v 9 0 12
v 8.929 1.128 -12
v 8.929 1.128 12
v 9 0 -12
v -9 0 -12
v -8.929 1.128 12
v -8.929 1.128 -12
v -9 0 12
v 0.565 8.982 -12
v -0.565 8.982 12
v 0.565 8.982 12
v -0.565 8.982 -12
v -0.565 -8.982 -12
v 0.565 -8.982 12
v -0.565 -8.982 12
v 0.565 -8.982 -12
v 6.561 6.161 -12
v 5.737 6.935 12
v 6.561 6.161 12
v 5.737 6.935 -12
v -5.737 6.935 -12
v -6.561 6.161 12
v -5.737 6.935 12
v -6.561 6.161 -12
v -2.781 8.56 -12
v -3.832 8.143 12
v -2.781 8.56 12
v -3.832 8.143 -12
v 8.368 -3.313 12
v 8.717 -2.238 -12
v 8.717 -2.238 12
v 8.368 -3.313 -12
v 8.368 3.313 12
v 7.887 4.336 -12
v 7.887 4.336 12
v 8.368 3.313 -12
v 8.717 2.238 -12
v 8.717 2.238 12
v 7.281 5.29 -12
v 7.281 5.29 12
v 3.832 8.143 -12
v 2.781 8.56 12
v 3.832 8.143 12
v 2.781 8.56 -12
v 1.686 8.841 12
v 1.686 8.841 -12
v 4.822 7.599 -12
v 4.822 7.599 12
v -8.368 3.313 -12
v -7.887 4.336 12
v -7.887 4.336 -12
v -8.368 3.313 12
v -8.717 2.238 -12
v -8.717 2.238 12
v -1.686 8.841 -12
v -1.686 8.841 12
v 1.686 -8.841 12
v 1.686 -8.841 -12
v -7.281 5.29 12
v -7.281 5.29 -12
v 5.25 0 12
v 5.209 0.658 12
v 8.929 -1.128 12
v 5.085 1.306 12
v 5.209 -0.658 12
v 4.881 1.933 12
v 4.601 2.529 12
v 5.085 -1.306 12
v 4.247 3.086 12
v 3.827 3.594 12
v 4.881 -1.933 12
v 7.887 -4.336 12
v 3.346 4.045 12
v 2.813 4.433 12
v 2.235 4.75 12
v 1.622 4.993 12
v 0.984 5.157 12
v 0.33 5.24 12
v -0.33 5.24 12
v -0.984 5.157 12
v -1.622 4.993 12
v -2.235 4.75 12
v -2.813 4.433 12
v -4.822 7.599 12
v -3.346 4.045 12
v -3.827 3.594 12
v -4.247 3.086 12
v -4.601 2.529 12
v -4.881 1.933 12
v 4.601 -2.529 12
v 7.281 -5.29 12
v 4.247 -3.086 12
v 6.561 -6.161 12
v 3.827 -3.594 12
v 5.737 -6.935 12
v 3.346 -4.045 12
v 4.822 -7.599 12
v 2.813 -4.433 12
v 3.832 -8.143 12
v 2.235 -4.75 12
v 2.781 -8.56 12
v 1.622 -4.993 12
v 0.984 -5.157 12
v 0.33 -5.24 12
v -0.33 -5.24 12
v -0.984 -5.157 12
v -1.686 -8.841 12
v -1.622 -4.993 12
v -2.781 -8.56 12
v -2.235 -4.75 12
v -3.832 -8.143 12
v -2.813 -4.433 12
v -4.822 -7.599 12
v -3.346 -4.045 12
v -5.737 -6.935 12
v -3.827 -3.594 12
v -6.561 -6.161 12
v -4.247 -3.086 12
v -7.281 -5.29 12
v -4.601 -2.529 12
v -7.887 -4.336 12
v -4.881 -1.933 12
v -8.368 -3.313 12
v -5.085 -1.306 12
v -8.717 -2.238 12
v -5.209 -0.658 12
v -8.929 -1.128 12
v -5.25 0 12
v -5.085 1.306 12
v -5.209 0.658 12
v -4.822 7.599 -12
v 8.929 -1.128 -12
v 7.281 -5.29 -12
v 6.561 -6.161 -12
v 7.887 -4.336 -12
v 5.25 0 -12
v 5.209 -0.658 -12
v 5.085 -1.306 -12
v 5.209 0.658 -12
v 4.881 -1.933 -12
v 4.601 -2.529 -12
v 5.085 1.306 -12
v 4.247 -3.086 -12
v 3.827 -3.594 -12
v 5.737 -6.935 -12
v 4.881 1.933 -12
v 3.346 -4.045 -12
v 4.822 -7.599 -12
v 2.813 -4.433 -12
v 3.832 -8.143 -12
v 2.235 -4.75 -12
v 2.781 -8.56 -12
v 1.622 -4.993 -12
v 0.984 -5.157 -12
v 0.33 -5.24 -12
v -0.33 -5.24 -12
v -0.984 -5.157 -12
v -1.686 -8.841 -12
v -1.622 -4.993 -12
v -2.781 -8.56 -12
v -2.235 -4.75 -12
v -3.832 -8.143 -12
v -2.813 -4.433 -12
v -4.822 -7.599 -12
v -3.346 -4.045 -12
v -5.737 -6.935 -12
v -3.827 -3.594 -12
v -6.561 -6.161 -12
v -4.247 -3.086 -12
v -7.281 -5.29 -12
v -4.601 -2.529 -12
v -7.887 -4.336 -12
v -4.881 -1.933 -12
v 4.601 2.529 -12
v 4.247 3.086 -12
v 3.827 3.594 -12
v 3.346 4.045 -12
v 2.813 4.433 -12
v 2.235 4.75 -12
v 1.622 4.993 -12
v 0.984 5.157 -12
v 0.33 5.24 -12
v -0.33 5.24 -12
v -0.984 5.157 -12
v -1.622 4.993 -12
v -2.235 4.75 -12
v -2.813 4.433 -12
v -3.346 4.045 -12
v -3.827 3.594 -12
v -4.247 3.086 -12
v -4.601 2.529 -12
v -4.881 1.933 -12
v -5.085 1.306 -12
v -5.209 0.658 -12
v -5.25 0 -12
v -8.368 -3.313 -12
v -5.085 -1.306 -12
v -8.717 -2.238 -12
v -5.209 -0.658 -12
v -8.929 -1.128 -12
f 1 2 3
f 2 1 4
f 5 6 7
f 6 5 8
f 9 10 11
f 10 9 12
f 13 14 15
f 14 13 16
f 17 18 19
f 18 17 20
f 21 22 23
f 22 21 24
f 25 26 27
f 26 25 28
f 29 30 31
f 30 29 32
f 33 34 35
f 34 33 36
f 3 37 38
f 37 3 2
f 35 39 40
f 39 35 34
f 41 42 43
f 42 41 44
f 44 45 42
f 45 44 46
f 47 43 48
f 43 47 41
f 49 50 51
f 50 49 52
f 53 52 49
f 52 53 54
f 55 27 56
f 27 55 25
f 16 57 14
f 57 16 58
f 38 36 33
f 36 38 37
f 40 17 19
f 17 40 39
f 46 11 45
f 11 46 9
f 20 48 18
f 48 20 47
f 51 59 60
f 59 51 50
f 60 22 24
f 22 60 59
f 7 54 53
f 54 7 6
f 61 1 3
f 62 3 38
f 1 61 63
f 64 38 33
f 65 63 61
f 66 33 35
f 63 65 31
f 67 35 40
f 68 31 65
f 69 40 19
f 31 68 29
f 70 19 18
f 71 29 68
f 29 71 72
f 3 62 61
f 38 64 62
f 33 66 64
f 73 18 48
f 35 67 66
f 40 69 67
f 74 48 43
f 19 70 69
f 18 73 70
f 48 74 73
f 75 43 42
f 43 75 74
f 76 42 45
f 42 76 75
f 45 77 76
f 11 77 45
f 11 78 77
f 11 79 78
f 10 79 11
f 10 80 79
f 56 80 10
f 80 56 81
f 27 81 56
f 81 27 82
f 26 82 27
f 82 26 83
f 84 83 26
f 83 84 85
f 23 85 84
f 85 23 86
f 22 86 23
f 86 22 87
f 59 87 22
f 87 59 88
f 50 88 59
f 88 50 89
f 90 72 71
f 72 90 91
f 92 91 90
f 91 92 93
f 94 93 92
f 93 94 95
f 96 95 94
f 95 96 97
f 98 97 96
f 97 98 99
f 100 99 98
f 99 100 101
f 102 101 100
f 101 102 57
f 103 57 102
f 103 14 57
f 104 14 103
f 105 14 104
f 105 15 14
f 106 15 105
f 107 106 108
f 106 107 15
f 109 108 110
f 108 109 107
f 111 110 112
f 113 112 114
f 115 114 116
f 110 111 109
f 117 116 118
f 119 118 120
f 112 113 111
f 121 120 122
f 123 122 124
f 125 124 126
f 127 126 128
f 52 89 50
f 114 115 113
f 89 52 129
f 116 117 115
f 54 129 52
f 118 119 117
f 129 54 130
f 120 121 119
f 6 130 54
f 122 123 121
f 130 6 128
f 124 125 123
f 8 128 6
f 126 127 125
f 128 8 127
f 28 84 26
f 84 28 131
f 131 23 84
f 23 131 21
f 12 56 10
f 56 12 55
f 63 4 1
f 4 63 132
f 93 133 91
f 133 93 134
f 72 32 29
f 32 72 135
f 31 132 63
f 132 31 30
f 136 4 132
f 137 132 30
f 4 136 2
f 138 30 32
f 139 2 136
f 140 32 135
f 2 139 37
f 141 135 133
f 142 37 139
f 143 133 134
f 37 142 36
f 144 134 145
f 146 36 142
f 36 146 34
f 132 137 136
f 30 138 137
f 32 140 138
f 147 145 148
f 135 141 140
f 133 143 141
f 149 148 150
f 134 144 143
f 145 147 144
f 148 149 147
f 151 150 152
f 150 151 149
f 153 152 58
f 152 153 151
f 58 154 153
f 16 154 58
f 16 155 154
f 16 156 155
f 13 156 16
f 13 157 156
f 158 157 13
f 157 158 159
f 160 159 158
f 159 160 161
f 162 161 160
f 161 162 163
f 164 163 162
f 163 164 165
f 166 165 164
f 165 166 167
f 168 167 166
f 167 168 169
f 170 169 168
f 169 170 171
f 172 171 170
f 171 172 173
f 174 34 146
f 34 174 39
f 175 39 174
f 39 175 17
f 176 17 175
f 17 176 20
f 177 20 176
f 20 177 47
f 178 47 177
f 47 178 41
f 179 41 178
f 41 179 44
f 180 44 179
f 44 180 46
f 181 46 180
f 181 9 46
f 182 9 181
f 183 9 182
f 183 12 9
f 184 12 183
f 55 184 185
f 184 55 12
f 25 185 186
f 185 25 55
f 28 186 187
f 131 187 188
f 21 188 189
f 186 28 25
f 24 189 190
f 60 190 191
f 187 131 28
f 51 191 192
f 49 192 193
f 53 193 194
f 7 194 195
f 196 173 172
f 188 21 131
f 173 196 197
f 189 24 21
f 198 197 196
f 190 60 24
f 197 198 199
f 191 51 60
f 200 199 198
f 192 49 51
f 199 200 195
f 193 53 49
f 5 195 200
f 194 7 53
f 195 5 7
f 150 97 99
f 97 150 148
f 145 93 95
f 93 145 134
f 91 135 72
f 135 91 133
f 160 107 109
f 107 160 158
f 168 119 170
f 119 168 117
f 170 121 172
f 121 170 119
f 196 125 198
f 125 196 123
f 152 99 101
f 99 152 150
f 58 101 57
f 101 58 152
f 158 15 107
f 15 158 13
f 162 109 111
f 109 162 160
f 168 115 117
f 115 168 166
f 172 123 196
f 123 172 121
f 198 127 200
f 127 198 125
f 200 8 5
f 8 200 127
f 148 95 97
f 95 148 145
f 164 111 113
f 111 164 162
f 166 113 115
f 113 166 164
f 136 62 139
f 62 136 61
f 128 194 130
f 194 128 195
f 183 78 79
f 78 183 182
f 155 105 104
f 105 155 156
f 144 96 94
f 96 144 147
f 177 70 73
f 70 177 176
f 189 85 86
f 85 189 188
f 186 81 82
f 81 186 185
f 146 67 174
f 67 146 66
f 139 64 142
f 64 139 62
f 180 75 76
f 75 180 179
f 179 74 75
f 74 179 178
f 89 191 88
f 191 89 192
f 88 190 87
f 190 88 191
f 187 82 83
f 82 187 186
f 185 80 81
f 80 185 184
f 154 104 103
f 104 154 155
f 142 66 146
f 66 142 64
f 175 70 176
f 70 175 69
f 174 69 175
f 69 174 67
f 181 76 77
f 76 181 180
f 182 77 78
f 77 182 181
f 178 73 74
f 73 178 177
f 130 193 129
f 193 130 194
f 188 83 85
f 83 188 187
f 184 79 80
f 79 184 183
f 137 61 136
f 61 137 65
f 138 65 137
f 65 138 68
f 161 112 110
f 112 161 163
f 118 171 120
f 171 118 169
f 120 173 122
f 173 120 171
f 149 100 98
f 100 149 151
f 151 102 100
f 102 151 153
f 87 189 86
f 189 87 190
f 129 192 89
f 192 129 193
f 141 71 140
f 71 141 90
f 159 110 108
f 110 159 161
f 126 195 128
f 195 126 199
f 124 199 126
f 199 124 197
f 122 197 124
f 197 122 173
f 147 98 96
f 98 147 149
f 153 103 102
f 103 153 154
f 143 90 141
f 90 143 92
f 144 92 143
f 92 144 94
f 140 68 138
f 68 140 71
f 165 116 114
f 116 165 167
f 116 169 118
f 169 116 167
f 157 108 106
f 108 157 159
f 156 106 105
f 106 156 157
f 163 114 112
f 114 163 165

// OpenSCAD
$fn = 50;


difference() {
	union() {
		translate(v = [0, 0, -12.0000000000]) {
			cylinder(h = 24, r = 9.0000000000);
		}
	}
	union() {
		translate(v = [0, 0, -100.0000000000]) {
			cylinder(h = 200, r = 5.2500000000);
		}
	}
}
